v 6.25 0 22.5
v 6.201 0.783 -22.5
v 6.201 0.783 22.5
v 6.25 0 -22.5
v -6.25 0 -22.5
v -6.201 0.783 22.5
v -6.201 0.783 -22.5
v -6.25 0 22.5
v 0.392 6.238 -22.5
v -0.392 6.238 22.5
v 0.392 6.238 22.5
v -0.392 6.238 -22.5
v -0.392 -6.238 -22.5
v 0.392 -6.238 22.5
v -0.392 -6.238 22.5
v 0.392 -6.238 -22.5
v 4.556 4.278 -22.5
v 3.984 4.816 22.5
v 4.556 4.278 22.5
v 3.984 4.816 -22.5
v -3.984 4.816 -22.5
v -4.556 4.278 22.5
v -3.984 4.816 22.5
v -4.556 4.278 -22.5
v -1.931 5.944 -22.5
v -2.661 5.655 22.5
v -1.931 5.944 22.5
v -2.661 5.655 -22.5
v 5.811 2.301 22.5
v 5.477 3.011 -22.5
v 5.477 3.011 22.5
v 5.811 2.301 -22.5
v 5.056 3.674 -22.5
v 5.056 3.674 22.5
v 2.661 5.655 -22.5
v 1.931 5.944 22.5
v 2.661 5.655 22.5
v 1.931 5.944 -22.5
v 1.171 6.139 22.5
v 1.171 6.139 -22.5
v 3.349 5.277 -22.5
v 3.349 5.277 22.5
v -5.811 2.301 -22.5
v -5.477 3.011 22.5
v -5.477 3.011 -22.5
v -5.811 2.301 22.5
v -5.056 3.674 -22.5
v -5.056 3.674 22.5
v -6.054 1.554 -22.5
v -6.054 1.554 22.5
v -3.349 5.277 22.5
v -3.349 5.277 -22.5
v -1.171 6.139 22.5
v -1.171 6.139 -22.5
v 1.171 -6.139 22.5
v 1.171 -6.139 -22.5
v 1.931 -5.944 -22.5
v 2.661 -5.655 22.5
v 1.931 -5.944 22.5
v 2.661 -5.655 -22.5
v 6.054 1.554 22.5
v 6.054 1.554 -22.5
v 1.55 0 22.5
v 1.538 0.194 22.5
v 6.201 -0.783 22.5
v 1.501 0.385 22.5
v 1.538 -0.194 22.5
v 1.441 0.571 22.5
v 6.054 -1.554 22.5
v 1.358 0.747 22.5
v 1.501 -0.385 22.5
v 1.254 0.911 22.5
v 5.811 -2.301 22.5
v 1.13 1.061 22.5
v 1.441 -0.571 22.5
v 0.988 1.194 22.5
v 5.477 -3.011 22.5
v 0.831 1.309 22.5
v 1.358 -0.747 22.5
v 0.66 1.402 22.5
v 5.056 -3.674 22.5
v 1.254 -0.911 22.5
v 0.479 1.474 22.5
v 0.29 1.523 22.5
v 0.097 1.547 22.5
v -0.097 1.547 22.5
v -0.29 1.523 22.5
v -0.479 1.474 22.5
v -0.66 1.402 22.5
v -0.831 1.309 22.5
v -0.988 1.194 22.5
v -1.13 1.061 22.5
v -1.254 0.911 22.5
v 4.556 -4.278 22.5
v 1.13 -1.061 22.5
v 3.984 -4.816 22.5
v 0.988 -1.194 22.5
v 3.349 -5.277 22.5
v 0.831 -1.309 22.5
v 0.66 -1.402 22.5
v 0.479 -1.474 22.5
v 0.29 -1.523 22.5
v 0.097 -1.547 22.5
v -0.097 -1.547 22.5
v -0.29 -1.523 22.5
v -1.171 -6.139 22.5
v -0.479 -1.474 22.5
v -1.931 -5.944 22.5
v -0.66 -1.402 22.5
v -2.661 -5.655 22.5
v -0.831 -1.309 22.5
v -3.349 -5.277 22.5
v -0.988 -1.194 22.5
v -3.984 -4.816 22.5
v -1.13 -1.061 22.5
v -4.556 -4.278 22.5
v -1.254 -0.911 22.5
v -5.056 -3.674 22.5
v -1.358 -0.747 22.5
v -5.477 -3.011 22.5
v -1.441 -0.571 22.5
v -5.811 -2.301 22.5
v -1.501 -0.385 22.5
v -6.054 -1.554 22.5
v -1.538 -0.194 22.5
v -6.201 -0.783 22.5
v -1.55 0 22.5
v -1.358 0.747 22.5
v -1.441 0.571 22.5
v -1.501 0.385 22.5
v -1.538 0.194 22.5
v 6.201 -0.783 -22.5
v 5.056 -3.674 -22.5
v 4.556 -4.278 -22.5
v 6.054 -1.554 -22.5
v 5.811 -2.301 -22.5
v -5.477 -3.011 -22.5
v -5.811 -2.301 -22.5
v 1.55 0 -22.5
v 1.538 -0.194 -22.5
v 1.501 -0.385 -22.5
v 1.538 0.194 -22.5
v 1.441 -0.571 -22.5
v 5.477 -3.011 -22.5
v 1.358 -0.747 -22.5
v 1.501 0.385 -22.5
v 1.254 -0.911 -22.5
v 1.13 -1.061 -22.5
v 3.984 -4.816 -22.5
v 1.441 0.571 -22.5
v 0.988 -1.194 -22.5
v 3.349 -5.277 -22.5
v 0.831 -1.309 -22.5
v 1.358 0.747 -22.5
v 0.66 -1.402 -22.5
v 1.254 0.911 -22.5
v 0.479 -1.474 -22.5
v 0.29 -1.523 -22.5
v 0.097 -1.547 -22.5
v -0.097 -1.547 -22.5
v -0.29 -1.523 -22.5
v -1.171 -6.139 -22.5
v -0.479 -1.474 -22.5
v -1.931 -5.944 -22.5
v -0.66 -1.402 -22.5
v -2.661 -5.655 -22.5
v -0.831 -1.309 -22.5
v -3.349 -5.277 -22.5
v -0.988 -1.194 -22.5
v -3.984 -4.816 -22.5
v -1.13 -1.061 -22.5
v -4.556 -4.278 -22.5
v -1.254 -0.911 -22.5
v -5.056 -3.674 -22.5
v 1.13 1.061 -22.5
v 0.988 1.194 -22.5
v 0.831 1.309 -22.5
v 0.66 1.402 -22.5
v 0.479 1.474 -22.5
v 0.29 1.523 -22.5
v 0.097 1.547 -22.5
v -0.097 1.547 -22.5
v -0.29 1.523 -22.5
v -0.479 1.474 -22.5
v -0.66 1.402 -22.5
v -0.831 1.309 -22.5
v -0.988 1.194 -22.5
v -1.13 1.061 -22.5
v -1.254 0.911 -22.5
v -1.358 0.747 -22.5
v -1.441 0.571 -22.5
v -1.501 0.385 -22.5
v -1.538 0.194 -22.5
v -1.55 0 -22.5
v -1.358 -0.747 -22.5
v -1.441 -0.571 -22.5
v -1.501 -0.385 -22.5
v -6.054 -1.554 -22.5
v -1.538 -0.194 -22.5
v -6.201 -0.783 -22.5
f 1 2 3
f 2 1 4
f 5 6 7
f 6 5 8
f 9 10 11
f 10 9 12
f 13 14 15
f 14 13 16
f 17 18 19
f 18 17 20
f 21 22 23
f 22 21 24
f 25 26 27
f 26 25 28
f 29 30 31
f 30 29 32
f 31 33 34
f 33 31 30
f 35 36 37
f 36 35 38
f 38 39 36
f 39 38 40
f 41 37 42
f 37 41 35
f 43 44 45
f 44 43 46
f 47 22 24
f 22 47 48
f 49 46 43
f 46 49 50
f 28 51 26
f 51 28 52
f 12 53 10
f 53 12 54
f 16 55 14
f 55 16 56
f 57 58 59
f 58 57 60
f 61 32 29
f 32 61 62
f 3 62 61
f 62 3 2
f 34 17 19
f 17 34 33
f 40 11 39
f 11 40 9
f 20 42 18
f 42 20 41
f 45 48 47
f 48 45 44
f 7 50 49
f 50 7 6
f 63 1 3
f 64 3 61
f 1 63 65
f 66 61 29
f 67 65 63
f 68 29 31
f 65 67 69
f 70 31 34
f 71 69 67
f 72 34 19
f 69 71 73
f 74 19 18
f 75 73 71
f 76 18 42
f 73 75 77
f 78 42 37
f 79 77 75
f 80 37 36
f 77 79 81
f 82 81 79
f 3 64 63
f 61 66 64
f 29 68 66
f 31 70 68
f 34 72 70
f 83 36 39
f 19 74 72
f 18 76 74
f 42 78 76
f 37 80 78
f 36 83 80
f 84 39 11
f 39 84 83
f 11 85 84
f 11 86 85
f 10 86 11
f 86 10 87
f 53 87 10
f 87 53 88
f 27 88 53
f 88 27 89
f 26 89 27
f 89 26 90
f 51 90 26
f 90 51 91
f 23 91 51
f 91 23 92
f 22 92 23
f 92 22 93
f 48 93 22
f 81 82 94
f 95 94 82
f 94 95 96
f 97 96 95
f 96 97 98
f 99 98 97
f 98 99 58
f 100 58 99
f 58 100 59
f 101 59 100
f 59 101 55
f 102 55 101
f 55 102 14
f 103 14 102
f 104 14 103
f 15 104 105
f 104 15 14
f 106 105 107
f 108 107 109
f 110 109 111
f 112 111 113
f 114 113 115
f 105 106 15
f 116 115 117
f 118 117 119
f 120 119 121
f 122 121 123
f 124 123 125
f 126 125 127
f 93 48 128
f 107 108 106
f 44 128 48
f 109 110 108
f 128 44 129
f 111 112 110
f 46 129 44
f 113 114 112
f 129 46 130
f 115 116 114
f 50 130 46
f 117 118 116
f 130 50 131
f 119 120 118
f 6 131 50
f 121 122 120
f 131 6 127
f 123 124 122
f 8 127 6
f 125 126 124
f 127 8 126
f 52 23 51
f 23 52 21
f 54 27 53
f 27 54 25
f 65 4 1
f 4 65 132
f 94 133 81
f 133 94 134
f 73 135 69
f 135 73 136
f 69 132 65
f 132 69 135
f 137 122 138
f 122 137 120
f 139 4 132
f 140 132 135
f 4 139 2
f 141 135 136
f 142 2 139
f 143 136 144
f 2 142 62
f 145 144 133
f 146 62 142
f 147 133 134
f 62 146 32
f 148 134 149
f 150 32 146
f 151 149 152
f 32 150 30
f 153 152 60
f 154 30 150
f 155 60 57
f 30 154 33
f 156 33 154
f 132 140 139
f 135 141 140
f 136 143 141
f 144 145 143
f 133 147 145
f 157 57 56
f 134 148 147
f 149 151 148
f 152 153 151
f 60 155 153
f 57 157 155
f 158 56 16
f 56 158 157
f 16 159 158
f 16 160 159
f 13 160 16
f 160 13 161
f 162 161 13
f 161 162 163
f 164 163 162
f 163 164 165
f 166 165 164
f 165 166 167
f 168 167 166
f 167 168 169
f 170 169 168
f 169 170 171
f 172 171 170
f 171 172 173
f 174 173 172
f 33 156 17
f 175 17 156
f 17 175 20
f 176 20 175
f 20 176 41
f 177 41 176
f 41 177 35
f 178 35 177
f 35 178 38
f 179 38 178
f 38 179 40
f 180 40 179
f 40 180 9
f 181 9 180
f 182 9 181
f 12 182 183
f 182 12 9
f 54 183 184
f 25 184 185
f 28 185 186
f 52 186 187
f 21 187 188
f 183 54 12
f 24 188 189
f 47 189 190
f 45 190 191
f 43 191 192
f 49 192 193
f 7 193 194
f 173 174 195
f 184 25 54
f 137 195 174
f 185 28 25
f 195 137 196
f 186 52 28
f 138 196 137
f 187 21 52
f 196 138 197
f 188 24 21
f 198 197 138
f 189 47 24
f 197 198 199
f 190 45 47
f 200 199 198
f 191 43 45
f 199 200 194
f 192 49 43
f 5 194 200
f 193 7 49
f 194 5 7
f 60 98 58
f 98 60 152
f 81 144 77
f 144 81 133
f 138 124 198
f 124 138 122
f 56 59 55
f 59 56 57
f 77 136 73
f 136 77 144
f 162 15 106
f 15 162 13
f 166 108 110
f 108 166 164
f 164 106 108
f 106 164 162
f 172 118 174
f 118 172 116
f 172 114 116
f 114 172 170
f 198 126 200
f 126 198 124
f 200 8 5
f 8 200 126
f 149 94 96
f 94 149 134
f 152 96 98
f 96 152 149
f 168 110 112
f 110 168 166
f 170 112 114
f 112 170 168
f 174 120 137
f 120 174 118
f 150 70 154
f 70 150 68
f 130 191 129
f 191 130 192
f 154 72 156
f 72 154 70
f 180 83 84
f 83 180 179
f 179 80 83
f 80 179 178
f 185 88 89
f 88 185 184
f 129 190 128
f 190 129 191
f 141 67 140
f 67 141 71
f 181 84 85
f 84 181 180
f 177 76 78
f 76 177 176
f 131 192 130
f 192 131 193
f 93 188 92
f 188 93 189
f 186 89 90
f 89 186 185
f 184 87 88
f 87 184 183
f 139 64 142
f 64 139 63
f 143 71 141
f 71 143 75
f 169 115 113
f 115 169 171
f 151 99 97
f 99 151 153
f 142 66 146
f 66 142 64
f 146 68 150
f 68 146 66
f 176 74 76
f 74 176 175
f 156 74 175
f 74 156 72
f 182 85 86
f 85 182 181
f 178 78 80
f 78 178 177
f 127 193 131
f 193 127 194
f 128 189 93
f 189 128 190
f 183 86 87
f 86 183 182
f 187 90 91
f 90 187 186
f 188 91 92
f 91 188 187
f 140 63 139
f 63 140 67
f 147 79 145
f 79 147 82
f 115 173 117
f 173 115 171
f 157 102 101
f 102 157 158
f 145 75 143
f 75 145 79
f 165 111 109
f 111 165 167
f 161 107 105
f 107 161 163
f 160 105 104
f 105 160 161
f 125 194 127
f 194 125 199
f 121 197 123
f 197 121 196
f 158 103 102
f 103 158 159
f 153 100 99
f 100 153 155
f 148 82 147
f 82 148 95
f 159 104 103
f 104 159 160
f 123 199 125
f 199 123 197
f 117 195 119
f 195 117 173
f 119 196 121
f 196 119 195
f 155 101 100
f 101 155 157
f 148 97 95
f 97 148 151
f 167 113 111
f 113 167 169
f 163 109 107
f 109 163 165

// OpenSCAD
$fn = 50;


difference() {
	union() {
		translate(v = [0, 0, -22.5000000000]) {
			cylinder(h = 45, r = 6.2500000000);
		}
	}
	union() {
		translate(v = [0, 0, -100.0000000000]) {
			cylinder(h = 200, r = 1.5500000000);
		}
	}
}
